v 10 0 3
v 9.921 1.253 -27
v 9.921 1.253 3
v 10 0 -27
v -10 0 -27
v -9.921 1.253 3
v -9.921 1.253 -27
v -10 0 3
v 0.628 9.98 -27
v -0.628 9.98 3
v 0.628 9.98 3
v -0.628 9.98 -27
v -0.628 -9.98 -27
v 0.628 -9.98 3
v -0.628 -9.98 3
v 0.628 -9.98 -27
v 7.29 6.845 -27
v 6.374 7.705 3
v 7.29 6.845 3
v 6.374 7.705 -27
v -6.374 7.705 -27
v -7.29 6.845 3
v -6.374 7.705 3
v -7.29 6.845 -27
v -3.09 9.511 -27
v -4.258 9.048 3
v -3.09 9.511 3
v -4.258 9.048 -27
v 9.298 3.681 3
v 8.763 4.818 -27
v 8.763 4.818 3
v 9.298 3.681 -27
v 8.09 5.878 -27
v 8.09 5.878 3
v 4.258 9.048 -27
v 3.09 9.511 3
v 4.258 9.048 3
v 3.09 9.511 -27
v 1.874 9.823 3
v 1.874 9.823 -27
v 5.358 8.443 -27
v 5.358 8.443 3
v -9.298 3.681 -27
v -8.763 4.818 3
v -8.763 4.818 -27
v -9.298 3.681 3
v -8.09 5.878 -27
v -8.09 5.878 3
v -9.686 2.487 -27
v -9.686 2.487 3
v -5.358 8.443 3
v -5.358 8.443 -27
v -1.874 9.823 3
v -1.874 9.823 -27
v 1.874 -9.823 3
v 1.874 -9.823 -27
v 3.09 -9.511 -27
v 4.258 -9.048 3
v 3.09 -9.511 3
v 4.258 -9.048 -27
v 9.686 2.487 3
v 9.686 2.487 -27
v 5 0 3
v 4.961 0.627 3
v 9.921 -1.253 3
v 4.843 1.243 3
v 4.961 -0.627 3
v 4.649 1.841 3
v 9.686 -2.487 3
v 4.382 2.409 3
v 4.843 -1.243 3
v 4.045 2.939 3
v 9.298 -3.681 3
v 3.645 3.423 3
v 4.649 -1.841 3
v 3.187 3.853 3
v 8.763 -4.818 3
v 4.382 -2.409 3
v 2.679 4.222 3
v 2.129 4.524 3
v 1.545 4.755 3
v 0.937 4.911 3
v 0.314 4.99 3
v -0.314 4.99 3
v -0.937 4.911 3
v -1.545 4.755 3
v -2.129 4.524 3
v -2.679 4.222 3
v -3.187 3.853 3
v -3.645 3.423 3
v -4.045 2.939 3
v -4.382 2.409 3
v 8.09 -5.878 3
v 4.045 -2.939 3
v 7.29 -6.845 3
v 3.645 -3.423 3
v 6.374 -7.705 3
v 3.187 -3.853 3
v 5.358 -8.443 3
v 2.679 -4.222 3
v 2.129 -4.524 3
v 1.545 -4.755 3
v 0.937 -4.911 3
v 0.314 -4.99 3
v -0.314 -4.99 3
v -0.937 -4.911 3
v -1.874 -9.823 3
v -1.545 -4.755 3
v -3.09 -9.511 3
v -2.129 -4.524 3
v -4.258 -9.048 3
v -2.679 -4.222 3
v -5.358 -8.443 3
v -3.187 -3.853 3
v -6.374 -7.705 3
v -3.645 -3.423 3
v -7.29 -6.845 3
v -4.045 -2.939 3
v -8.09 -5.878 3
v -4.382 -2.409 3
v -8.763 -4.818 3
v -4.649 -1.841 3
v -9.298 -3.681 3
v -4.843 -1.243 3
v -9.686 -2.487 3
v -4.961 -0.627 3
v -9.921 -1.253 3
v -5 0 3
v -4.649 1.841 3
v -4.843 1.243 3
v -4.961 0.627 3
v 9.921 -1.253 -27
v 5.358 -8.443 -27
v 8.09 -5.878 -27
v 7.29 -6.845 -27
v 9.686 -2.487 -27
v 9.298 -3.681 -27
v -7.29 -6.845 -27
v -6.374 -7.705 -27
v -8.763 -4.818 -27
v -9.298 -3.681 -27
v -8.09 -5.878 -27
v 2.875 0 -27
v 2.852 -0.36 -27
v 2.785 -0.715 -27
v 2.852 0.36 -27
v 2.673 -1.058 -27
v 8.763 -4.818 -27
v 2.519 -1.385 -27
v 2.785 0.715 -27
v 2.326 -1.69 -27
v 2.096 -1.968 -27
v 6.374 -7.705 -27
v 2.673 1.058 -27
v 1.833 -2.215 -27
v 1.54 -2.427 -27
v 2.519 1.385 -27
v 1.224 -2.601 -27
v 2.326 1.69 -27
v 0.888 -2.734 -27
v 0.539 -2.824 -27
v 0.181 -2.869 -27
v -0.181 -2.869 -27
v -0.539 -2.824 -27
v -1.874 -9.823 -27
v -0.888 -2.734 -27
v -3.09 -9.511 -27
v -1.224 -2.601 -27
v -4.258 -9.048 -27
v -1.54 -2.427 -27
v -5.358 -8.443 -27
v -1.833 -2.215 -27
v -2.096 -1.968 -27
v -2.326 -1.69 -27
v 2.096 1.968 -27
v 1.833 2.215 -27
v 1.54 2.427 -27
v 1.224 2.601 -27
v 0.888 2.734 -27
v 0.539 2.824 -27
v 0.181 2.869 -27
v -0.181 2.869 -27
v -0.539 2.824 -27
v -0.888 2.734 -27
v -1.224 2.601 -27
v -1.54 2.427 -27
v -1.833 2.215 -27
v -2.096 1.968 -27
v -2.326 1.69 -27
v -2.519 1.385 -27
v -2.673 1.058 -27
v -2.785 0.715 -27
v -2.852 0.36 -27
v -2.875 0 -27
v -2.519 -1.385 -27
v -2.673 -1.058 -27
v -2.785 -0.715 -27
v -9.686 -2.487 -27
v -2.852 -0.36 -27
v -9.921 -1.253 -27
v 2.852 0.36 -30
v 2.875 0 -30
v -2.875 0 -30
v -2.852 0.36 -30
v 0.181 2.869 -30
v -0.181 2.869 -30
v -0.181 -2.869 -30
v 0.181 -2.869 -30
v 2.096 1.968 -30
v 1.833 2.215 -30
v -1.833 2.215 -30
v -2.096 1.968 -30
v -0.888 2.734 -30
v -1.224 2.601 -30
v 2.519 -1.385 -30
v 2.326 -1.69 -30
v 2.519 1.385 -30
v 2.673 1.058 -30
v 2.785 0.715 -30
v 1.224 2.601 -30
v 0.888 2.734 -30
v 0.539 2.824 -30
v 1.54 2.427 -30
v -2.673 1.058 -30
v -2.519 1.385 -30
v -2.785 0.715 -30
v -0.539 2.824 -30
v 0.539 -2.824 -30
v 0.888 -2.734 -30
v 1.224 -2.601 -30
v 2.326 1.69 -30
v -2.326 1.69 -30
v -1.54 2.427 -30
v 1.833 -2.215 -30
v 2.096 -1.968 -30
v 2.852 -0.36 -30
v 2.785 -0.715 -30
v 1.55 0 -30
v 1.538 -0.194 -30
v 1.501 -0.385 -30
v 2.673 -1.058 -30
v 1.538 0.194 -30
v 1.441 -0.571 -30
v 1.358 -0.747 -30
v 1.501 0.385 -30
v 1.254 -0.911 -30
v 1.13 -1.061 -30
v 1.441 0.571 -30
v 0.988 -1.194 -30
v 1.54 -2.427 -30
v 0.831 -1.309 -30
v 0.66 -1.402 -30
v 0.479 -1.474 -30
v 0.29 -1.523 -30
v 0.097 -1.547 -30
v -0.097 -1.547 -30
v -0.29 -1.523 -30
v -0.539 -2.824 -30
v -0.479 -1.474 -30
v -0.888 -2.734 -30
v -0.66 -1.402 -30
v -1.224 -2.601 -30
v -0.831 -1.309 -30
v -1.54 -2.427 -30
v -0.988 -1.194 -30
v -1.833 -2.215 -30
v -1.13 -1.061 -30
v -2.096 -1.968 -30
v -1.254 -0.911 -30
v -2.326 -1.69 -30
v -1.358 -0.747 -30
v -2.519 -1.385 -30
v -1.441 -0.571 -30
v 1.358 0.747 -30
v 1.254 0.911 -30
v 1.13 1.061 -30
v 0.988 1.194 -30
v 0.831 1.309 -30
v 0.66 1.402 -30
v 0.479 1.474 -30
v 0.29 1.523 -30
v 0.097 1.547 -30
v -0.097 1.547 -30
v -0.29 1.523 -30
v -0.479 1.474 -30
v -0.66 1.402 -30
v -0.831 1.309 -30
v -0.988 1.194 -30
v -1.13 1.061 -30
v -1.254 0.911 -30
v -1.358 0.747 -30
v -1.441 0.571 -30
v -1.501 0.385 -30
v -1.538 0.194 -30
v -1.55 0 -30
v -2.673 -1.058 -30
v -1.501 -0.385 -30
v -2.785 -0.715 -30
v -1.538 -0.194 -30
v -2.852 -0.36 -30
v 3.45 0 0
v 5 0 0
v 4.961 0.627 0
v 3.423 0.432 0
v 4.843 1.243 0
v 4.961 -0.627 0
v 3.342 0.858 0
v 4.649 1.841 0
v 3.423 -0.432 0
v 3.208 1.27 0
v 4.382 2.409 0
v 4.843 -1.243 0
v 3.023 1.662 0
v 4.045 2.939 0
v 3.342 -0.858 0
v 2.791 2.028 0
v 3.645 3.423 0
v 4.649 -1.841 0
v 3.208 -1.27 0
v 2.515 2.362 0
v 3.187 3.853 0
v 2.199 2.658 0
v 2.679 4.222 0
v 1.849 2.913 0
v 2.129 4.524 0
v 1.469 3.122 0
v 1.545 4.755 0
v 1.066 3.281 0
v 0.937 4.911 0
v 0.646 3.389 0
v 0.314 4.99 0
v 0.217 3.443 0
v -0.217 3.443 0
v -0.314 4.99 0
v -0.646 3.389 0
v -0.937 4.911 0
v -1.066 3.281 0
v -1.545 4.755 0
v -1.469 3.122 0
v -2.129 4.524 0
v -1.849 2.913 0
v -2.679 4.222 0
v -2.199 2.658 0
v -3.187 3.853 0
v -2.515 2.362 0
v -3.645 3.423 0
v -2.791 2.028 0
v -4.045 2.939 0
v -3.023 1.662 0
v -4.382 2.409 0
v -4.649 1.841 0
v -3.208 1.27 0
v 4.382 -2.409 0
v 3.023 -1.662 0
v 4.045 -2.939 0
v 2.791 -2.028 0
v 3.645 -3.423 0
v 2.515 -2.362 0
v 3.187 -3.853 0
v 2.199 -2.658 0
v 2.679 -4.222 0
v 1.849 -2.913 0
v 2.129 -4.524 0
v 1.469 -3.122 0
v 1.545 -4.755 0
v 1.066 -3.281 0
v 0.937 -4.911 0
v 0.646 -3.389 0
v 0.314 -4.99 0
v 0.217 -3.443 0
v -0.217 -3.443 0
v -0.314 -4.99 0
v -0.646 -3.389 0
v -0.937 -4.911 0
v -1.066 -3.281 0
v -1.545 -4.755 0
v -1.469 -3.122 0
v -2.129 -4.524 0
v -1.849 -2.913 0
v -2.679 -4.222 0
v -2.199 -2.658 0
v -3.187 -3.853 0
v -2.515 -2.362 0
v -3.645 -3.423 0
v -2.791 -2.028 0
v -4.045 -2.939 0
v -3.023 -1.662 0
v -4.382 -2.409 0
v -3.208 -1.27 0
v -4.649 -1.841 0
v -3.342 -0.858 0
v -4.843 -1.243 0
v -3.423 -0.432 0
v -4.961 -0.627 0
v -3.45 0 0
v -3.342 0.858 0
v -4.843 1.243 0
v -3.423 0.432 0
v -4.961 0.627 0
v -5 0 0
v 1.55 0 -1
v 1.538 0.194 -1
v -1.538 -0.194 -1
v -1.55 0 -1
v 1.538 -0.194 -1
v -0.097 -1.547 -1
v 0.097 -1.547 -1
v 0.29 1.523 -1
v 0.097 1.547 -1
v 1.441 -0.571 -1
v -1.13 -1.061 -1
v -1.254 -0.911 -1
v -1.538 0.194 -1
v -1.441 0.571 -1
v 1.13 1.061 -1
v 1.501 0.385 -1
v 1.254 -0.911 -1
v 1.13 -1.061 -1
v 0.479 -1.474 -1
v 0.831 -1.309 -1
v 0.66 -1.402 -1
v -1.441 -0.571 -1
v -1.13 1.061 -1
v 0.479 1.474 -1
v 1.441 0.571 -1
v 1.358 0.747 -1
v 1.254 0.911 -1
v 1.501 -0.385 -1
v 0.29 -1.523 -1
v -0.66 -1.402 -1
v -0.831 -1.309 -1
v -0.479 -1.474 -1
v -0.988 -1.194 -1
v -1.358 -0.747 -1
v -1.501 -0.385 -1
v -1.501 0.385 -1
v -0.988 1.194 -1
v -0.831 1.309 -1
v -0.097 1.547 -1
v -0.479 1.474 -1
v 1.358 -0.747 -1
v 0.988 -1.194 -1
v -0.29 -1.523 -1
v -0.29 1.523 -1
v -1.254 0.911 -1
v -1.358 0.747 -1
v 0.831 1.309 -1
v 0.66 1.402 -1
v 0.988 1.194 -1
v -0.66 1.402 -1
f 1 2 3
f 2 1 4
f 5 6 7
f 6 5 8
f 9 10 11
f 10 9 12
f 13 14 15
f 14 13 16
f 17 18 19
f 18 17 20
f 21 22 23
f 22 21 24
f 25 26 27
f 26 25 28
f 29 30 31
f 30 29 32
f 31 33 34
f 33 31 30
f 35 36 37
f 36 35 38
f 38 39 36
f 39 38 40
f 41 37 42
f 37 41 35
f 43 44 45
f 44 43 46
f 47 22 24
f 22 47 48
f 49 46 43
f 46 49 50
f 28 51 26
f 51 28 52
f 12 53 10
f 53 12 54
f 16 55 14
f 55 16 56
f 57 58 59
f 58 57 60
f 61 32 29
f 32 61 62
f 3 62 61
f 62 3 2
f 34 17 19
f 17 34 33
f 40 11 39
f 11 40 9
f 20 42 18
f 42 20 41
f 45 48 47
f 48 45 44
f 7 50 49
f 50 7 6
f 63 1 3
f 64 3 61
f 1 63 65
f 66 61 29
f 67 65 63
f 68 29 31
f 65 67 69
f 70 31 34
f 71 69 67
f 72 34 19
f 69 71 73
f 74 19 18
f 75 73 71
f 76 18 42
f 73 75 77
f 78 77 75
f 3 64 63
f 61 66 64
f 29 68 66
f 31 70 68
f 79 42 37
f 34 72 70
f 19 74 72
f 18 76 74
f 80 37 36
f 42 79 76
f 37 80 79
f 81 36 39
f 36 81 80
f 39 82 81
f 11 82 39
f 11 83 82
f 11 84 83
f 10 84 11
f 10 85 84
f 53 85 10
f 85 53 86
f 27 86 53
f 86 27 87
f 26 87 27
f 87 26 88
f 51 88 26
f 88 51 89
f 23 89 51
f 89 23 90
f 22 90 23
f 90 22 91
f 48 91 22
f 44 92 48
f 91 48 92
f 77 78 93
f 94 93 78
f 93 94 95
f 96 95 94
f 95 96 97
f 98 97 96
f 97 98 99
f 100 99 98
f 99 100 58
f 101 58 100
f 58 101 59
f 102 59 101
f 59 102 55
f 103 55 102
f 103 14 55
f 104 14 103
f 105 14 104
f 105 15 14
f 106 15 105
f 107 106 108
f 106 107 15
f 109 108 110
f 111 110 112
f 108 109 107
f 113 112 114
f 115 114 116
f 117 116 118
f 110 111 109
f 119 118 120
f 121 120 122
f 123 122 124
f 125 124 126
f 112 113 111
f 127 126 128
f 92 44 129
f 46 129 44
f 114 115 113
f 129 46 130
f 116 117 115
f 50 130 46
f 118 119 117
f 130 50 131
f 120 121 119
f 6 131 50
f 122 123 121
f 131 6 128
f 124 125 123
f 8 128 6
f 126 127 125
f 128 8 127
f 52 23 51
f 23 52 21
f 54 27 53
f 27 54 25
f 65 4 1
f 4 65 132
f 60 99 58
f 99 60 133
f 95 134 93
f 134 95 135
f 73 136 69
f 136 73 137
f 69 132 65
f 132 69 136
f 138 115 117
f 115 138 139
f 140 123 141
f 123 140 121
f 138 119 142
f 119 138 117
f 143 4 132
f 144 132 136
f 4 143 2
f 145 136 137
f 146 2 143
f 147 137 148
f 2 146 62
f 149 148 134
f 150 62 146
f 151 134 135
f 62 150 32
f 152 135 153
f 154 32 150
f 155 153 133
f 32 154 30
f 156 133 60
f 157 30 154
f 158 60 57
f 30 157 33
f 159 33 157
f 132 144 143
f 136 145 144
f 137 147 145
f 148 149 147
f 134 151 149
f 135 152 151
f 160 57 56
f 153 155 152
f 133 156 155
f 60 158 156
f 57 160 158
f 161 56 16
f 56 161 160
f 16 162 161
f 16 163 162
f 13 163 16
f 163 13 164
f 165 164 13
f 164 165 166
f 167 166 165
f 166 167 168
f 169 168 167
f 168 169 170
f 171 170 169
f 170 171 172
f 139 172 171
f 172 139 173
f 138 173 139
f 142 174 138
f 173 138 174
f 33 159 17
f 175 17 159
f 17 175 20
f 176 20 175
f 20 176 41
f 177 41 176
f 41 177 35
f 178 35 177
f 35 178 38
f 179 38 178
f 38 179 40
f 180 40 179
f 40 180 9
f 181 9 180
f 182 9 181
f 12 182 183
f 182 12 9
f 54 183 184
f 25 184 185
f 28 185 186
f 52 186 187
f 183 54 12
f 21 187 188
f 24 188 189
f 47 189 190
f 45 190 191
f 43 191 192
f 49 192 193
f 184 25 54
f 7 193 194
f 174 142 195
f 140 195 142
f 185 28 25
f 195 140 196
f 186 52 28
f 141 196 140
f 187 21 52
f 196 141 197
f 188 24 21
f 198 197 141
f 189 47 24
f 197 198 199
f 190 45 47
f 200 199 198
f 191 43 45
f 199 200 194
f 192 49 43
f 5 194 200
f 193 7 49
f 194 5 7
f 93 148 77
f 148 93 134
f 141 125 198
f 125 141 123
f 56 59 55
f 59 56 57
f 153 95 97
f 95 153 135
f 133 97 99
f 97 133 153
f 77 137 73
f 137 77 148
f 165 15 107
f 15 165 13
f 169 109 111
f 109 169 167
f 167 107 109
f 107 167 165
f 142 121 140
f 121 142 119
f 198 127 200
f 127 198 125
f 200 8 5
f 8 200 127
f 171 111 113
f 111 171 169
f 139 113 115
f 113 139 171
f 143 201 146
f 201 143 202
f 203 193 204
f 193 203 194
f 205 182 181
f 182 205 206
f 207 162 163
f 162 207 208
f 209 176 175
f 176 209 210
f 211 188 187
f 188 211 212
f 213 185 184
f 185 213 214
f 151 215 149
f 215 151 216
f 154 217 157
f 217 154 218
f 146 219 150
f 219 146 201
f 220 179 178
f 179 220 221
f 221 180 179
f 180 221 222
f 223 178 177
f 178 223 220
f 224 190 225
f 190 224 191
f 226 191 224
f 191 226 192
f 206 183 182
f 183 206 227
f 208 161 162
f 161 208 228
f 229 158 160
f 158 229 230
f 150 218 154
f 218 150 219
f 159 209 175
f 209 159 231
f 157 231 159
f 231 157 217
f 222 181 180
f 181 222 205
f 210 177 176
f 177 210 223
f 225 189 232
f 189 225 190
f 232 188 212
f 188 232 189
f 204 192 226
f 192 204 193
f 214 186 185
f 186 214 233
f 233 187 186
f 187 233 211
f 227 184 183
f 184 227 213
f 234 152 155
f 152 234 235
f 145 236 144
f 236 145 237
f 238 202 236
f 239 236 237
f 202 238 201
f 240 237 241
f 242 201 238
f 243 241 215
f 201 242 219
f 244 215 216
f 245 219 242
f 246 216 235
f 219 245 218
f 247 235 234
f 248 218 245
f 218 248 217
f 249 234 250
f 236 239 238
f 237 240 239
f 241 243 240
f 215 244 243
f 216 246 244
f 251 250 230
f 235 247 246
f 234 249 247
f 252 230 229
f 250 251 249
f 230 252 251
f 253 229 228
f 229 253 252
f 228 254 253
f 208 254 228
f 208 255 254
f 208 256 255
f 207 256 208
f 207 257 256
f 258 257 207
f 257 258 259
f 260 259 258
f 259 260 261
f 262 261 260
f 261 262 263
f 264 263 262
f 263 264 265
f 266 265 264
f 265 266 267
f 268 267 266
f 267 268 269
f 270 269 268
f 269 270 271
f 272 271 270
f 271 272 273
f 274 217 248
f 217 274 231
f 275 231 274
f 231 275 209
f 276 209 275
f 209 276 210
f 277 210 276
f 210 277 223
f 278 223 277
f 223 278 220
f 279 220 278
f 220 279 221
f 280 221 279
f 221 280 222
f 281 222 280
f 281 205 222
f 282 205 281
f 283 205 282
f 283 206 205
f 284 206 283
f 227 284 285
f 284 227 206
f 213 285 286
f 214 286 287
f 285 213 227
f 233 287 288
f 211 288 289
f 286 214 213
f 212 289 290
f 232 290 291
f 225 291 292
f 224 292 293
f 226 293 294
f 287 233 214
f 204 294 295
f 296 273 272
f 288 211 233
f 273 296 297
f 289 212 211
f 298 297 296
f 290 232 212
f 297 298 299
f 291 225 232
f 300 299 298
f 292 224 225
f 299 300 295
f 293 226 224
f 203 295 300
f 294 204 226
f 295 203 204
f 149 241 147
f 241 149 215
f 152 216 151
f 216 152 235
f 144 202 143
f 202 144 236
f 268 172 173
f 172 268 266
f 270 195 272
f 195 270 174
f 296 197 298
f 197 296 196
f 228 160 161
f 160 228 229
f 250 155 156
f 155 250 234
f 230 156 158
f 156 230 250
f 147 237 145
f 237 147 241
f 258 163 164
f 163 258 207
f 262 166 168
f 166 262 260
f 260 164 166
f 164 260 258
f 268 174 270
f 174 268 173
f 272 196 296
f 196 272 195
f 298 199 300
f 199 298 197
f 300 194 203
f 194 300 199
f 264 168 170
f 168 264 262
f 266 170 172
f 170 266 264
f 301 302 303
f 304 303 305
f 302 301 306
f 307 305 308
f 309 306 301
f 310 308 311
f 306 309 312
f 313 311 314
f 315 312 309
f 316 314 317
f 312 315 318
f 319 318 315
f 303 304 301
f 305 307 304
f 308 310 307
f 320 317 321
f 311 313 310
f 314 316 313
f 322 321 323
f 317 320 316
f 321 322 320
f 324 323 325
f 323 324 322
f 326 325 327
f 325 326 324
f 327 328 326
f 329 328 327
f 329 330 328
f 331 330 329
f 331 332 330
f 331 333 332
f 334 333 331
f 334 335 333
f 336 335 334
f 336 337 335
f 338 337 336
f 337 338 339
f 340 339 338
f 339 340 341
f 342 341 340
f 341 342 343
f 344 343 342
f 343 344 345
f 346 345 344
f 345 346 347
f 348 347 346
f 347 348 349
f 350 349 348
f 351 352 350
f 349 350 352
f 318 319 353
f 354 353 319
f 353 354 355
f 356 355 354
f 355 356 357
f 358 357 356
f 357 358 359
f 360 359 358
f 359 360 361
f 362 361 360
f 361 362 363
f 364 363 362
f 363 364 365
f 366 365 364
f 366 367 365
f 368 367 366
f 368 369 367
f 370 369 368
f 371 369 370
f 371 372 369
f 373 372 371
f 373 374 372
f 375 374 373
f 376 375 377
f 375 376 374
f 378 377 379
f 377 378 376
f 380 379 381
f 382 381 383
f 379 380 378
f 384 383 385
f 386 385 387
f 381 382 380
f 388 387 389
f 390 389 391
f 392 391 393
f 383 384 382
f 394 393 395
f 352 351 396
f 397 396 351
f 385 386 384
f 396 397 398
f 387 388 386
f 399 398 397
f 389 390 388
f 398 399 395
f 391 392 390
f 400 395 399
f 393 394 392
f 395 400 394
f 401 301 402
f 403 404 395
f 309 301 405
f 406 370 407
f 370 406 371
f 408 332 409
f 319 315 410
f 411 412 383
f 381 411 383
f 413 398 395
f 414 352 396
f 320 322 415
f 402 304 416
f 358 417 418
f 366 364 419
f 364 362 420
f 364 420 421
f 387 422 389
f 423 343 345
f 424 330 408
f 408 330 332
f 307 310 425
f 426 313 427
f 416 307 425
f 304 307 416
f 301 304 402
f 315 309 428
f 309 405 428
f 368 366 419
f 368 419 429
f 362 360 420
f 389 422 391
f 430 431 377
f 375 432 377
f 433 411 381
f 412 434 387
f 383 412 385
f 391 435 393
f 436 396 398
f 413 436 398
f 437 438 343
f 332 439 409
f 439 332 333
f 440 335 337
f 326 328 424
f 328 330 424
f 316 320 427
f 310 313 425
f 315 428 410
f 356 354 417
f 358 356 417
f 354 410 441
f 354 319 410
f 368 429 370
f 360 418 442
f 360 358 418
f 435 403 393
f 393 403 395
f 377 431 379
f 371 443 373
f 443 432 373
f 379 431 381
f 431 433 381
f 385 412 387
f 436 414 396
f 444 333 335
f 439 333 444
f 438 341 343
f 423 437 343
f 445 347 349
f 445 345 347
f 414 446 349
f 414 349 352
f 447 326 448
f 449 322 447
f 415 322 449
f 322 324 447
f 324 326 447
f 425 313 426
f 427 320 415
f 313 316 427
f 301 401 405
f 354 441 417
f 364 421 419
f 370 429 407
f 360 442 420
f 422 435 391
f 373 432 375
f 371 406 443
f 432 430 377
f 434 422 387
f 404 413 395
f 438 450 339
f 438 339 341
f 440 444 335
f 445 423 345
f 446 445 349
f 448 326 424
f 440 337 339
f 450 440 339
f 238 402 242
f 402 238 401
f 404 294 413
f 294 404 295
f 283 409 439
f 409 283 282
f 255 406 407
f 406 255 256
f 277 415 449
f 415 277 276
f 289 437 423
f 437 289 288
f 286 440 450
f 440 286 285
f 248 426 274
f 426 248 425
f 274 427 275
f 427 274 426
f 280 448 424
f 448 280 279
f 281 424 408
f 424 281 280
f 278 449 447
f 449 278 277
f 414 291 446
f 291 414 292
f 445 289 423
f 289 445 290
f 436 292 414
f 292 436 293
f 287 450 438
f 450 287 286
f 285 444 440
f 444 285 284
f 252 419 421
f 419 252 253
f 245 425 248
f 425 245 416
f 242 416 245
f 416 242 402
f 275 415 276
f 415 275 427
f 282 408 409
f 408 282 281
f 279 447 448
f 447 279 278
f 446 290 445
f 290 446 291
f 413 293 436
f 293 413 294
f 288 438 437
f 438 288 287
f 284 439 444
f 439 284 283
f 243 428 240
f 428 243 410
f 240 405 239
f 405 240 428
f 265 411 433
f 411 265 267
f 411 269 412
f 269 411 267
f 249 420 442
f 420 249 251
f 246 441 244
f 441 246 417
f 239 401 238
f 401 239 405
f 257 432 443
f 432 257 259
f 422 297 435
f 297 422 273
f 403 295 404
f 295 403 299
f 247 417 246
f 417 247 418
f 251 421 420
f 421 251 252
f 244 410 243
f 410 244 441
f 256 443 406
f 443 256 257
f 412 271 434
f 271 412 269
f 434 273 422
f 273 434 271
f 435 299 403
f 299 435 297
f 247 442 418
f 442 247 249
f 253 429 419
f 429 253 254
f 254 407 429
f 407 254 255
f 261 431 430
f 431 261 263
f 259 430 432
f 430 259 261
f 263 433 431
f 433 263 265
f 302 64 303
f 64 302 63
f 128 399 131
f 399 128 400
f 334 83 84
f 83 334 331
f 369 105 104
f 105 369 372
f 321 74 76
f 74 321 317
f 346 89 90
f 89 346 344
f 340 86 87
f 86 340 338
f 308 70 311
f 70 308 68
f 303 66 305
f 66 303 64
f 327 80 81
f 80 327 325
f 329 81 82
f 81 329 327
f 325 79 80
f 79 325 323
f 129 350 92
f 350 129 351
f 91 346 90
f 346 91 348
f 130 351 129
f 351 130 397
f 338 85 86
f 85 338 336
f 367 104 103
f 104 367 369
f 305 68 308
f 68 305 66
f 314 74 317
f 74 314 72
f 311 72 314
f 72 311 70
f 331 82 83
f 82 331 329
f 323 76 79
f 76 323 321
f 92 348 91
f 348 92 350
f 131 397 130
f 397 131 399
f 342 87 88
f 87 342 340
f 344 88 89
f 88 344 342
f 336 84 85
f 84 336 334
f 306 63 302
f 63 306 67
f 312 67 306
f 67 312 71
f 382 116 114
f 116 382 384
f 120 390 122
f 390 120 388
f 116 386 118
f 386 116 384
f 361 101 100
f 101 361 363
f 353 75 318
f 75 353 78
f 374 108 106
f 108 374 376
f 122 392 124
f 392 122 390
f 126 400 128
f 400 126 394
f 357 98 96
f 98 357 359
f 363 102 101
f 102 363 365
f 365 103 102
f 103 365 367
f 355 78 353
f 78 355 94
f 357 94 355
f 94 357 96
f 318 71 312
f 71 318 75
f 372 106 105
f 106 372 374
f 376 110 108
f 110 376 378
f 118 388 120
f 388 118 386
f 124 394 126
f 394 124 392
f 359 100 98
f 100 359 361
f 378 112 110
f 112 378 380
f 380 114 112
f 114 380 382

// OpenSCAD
$fn = 50;

difference() {
	union() {
		translate(v = [0, 0, -27.0]) {
			cylinder(h = 30, r = 10.0);
		}
		#translate(v = [0, 0, -30.0]) {
			cylinder(h = 30, r = 2.875);
		}
	}
	union() {
		translate(v = [0, 0, 0]) {
			rotate(a = [0, 0, 0]) {
				difference() {
					union() {
						translate(v = [0, 0, -30.0]) {
							cylinder(h = 30, r = 1.25);
						}
						translate(v = [0, 0, -1.0]) {
							cylinder(h = 1.0, r1 = 1.55, r2 = 3.45);
						}
						translate(v = [0, 0, -30.0]) {
							cylinder(h = 30, r = 1.55);
						}
						translate(v = [0, 0, -30.0]) {
							cylinder(h = 30, r = 1.25);
						}
					}
					union();
				}
			}
		}
		#cylinder(h = 3, r = 5.0);
	}
}
